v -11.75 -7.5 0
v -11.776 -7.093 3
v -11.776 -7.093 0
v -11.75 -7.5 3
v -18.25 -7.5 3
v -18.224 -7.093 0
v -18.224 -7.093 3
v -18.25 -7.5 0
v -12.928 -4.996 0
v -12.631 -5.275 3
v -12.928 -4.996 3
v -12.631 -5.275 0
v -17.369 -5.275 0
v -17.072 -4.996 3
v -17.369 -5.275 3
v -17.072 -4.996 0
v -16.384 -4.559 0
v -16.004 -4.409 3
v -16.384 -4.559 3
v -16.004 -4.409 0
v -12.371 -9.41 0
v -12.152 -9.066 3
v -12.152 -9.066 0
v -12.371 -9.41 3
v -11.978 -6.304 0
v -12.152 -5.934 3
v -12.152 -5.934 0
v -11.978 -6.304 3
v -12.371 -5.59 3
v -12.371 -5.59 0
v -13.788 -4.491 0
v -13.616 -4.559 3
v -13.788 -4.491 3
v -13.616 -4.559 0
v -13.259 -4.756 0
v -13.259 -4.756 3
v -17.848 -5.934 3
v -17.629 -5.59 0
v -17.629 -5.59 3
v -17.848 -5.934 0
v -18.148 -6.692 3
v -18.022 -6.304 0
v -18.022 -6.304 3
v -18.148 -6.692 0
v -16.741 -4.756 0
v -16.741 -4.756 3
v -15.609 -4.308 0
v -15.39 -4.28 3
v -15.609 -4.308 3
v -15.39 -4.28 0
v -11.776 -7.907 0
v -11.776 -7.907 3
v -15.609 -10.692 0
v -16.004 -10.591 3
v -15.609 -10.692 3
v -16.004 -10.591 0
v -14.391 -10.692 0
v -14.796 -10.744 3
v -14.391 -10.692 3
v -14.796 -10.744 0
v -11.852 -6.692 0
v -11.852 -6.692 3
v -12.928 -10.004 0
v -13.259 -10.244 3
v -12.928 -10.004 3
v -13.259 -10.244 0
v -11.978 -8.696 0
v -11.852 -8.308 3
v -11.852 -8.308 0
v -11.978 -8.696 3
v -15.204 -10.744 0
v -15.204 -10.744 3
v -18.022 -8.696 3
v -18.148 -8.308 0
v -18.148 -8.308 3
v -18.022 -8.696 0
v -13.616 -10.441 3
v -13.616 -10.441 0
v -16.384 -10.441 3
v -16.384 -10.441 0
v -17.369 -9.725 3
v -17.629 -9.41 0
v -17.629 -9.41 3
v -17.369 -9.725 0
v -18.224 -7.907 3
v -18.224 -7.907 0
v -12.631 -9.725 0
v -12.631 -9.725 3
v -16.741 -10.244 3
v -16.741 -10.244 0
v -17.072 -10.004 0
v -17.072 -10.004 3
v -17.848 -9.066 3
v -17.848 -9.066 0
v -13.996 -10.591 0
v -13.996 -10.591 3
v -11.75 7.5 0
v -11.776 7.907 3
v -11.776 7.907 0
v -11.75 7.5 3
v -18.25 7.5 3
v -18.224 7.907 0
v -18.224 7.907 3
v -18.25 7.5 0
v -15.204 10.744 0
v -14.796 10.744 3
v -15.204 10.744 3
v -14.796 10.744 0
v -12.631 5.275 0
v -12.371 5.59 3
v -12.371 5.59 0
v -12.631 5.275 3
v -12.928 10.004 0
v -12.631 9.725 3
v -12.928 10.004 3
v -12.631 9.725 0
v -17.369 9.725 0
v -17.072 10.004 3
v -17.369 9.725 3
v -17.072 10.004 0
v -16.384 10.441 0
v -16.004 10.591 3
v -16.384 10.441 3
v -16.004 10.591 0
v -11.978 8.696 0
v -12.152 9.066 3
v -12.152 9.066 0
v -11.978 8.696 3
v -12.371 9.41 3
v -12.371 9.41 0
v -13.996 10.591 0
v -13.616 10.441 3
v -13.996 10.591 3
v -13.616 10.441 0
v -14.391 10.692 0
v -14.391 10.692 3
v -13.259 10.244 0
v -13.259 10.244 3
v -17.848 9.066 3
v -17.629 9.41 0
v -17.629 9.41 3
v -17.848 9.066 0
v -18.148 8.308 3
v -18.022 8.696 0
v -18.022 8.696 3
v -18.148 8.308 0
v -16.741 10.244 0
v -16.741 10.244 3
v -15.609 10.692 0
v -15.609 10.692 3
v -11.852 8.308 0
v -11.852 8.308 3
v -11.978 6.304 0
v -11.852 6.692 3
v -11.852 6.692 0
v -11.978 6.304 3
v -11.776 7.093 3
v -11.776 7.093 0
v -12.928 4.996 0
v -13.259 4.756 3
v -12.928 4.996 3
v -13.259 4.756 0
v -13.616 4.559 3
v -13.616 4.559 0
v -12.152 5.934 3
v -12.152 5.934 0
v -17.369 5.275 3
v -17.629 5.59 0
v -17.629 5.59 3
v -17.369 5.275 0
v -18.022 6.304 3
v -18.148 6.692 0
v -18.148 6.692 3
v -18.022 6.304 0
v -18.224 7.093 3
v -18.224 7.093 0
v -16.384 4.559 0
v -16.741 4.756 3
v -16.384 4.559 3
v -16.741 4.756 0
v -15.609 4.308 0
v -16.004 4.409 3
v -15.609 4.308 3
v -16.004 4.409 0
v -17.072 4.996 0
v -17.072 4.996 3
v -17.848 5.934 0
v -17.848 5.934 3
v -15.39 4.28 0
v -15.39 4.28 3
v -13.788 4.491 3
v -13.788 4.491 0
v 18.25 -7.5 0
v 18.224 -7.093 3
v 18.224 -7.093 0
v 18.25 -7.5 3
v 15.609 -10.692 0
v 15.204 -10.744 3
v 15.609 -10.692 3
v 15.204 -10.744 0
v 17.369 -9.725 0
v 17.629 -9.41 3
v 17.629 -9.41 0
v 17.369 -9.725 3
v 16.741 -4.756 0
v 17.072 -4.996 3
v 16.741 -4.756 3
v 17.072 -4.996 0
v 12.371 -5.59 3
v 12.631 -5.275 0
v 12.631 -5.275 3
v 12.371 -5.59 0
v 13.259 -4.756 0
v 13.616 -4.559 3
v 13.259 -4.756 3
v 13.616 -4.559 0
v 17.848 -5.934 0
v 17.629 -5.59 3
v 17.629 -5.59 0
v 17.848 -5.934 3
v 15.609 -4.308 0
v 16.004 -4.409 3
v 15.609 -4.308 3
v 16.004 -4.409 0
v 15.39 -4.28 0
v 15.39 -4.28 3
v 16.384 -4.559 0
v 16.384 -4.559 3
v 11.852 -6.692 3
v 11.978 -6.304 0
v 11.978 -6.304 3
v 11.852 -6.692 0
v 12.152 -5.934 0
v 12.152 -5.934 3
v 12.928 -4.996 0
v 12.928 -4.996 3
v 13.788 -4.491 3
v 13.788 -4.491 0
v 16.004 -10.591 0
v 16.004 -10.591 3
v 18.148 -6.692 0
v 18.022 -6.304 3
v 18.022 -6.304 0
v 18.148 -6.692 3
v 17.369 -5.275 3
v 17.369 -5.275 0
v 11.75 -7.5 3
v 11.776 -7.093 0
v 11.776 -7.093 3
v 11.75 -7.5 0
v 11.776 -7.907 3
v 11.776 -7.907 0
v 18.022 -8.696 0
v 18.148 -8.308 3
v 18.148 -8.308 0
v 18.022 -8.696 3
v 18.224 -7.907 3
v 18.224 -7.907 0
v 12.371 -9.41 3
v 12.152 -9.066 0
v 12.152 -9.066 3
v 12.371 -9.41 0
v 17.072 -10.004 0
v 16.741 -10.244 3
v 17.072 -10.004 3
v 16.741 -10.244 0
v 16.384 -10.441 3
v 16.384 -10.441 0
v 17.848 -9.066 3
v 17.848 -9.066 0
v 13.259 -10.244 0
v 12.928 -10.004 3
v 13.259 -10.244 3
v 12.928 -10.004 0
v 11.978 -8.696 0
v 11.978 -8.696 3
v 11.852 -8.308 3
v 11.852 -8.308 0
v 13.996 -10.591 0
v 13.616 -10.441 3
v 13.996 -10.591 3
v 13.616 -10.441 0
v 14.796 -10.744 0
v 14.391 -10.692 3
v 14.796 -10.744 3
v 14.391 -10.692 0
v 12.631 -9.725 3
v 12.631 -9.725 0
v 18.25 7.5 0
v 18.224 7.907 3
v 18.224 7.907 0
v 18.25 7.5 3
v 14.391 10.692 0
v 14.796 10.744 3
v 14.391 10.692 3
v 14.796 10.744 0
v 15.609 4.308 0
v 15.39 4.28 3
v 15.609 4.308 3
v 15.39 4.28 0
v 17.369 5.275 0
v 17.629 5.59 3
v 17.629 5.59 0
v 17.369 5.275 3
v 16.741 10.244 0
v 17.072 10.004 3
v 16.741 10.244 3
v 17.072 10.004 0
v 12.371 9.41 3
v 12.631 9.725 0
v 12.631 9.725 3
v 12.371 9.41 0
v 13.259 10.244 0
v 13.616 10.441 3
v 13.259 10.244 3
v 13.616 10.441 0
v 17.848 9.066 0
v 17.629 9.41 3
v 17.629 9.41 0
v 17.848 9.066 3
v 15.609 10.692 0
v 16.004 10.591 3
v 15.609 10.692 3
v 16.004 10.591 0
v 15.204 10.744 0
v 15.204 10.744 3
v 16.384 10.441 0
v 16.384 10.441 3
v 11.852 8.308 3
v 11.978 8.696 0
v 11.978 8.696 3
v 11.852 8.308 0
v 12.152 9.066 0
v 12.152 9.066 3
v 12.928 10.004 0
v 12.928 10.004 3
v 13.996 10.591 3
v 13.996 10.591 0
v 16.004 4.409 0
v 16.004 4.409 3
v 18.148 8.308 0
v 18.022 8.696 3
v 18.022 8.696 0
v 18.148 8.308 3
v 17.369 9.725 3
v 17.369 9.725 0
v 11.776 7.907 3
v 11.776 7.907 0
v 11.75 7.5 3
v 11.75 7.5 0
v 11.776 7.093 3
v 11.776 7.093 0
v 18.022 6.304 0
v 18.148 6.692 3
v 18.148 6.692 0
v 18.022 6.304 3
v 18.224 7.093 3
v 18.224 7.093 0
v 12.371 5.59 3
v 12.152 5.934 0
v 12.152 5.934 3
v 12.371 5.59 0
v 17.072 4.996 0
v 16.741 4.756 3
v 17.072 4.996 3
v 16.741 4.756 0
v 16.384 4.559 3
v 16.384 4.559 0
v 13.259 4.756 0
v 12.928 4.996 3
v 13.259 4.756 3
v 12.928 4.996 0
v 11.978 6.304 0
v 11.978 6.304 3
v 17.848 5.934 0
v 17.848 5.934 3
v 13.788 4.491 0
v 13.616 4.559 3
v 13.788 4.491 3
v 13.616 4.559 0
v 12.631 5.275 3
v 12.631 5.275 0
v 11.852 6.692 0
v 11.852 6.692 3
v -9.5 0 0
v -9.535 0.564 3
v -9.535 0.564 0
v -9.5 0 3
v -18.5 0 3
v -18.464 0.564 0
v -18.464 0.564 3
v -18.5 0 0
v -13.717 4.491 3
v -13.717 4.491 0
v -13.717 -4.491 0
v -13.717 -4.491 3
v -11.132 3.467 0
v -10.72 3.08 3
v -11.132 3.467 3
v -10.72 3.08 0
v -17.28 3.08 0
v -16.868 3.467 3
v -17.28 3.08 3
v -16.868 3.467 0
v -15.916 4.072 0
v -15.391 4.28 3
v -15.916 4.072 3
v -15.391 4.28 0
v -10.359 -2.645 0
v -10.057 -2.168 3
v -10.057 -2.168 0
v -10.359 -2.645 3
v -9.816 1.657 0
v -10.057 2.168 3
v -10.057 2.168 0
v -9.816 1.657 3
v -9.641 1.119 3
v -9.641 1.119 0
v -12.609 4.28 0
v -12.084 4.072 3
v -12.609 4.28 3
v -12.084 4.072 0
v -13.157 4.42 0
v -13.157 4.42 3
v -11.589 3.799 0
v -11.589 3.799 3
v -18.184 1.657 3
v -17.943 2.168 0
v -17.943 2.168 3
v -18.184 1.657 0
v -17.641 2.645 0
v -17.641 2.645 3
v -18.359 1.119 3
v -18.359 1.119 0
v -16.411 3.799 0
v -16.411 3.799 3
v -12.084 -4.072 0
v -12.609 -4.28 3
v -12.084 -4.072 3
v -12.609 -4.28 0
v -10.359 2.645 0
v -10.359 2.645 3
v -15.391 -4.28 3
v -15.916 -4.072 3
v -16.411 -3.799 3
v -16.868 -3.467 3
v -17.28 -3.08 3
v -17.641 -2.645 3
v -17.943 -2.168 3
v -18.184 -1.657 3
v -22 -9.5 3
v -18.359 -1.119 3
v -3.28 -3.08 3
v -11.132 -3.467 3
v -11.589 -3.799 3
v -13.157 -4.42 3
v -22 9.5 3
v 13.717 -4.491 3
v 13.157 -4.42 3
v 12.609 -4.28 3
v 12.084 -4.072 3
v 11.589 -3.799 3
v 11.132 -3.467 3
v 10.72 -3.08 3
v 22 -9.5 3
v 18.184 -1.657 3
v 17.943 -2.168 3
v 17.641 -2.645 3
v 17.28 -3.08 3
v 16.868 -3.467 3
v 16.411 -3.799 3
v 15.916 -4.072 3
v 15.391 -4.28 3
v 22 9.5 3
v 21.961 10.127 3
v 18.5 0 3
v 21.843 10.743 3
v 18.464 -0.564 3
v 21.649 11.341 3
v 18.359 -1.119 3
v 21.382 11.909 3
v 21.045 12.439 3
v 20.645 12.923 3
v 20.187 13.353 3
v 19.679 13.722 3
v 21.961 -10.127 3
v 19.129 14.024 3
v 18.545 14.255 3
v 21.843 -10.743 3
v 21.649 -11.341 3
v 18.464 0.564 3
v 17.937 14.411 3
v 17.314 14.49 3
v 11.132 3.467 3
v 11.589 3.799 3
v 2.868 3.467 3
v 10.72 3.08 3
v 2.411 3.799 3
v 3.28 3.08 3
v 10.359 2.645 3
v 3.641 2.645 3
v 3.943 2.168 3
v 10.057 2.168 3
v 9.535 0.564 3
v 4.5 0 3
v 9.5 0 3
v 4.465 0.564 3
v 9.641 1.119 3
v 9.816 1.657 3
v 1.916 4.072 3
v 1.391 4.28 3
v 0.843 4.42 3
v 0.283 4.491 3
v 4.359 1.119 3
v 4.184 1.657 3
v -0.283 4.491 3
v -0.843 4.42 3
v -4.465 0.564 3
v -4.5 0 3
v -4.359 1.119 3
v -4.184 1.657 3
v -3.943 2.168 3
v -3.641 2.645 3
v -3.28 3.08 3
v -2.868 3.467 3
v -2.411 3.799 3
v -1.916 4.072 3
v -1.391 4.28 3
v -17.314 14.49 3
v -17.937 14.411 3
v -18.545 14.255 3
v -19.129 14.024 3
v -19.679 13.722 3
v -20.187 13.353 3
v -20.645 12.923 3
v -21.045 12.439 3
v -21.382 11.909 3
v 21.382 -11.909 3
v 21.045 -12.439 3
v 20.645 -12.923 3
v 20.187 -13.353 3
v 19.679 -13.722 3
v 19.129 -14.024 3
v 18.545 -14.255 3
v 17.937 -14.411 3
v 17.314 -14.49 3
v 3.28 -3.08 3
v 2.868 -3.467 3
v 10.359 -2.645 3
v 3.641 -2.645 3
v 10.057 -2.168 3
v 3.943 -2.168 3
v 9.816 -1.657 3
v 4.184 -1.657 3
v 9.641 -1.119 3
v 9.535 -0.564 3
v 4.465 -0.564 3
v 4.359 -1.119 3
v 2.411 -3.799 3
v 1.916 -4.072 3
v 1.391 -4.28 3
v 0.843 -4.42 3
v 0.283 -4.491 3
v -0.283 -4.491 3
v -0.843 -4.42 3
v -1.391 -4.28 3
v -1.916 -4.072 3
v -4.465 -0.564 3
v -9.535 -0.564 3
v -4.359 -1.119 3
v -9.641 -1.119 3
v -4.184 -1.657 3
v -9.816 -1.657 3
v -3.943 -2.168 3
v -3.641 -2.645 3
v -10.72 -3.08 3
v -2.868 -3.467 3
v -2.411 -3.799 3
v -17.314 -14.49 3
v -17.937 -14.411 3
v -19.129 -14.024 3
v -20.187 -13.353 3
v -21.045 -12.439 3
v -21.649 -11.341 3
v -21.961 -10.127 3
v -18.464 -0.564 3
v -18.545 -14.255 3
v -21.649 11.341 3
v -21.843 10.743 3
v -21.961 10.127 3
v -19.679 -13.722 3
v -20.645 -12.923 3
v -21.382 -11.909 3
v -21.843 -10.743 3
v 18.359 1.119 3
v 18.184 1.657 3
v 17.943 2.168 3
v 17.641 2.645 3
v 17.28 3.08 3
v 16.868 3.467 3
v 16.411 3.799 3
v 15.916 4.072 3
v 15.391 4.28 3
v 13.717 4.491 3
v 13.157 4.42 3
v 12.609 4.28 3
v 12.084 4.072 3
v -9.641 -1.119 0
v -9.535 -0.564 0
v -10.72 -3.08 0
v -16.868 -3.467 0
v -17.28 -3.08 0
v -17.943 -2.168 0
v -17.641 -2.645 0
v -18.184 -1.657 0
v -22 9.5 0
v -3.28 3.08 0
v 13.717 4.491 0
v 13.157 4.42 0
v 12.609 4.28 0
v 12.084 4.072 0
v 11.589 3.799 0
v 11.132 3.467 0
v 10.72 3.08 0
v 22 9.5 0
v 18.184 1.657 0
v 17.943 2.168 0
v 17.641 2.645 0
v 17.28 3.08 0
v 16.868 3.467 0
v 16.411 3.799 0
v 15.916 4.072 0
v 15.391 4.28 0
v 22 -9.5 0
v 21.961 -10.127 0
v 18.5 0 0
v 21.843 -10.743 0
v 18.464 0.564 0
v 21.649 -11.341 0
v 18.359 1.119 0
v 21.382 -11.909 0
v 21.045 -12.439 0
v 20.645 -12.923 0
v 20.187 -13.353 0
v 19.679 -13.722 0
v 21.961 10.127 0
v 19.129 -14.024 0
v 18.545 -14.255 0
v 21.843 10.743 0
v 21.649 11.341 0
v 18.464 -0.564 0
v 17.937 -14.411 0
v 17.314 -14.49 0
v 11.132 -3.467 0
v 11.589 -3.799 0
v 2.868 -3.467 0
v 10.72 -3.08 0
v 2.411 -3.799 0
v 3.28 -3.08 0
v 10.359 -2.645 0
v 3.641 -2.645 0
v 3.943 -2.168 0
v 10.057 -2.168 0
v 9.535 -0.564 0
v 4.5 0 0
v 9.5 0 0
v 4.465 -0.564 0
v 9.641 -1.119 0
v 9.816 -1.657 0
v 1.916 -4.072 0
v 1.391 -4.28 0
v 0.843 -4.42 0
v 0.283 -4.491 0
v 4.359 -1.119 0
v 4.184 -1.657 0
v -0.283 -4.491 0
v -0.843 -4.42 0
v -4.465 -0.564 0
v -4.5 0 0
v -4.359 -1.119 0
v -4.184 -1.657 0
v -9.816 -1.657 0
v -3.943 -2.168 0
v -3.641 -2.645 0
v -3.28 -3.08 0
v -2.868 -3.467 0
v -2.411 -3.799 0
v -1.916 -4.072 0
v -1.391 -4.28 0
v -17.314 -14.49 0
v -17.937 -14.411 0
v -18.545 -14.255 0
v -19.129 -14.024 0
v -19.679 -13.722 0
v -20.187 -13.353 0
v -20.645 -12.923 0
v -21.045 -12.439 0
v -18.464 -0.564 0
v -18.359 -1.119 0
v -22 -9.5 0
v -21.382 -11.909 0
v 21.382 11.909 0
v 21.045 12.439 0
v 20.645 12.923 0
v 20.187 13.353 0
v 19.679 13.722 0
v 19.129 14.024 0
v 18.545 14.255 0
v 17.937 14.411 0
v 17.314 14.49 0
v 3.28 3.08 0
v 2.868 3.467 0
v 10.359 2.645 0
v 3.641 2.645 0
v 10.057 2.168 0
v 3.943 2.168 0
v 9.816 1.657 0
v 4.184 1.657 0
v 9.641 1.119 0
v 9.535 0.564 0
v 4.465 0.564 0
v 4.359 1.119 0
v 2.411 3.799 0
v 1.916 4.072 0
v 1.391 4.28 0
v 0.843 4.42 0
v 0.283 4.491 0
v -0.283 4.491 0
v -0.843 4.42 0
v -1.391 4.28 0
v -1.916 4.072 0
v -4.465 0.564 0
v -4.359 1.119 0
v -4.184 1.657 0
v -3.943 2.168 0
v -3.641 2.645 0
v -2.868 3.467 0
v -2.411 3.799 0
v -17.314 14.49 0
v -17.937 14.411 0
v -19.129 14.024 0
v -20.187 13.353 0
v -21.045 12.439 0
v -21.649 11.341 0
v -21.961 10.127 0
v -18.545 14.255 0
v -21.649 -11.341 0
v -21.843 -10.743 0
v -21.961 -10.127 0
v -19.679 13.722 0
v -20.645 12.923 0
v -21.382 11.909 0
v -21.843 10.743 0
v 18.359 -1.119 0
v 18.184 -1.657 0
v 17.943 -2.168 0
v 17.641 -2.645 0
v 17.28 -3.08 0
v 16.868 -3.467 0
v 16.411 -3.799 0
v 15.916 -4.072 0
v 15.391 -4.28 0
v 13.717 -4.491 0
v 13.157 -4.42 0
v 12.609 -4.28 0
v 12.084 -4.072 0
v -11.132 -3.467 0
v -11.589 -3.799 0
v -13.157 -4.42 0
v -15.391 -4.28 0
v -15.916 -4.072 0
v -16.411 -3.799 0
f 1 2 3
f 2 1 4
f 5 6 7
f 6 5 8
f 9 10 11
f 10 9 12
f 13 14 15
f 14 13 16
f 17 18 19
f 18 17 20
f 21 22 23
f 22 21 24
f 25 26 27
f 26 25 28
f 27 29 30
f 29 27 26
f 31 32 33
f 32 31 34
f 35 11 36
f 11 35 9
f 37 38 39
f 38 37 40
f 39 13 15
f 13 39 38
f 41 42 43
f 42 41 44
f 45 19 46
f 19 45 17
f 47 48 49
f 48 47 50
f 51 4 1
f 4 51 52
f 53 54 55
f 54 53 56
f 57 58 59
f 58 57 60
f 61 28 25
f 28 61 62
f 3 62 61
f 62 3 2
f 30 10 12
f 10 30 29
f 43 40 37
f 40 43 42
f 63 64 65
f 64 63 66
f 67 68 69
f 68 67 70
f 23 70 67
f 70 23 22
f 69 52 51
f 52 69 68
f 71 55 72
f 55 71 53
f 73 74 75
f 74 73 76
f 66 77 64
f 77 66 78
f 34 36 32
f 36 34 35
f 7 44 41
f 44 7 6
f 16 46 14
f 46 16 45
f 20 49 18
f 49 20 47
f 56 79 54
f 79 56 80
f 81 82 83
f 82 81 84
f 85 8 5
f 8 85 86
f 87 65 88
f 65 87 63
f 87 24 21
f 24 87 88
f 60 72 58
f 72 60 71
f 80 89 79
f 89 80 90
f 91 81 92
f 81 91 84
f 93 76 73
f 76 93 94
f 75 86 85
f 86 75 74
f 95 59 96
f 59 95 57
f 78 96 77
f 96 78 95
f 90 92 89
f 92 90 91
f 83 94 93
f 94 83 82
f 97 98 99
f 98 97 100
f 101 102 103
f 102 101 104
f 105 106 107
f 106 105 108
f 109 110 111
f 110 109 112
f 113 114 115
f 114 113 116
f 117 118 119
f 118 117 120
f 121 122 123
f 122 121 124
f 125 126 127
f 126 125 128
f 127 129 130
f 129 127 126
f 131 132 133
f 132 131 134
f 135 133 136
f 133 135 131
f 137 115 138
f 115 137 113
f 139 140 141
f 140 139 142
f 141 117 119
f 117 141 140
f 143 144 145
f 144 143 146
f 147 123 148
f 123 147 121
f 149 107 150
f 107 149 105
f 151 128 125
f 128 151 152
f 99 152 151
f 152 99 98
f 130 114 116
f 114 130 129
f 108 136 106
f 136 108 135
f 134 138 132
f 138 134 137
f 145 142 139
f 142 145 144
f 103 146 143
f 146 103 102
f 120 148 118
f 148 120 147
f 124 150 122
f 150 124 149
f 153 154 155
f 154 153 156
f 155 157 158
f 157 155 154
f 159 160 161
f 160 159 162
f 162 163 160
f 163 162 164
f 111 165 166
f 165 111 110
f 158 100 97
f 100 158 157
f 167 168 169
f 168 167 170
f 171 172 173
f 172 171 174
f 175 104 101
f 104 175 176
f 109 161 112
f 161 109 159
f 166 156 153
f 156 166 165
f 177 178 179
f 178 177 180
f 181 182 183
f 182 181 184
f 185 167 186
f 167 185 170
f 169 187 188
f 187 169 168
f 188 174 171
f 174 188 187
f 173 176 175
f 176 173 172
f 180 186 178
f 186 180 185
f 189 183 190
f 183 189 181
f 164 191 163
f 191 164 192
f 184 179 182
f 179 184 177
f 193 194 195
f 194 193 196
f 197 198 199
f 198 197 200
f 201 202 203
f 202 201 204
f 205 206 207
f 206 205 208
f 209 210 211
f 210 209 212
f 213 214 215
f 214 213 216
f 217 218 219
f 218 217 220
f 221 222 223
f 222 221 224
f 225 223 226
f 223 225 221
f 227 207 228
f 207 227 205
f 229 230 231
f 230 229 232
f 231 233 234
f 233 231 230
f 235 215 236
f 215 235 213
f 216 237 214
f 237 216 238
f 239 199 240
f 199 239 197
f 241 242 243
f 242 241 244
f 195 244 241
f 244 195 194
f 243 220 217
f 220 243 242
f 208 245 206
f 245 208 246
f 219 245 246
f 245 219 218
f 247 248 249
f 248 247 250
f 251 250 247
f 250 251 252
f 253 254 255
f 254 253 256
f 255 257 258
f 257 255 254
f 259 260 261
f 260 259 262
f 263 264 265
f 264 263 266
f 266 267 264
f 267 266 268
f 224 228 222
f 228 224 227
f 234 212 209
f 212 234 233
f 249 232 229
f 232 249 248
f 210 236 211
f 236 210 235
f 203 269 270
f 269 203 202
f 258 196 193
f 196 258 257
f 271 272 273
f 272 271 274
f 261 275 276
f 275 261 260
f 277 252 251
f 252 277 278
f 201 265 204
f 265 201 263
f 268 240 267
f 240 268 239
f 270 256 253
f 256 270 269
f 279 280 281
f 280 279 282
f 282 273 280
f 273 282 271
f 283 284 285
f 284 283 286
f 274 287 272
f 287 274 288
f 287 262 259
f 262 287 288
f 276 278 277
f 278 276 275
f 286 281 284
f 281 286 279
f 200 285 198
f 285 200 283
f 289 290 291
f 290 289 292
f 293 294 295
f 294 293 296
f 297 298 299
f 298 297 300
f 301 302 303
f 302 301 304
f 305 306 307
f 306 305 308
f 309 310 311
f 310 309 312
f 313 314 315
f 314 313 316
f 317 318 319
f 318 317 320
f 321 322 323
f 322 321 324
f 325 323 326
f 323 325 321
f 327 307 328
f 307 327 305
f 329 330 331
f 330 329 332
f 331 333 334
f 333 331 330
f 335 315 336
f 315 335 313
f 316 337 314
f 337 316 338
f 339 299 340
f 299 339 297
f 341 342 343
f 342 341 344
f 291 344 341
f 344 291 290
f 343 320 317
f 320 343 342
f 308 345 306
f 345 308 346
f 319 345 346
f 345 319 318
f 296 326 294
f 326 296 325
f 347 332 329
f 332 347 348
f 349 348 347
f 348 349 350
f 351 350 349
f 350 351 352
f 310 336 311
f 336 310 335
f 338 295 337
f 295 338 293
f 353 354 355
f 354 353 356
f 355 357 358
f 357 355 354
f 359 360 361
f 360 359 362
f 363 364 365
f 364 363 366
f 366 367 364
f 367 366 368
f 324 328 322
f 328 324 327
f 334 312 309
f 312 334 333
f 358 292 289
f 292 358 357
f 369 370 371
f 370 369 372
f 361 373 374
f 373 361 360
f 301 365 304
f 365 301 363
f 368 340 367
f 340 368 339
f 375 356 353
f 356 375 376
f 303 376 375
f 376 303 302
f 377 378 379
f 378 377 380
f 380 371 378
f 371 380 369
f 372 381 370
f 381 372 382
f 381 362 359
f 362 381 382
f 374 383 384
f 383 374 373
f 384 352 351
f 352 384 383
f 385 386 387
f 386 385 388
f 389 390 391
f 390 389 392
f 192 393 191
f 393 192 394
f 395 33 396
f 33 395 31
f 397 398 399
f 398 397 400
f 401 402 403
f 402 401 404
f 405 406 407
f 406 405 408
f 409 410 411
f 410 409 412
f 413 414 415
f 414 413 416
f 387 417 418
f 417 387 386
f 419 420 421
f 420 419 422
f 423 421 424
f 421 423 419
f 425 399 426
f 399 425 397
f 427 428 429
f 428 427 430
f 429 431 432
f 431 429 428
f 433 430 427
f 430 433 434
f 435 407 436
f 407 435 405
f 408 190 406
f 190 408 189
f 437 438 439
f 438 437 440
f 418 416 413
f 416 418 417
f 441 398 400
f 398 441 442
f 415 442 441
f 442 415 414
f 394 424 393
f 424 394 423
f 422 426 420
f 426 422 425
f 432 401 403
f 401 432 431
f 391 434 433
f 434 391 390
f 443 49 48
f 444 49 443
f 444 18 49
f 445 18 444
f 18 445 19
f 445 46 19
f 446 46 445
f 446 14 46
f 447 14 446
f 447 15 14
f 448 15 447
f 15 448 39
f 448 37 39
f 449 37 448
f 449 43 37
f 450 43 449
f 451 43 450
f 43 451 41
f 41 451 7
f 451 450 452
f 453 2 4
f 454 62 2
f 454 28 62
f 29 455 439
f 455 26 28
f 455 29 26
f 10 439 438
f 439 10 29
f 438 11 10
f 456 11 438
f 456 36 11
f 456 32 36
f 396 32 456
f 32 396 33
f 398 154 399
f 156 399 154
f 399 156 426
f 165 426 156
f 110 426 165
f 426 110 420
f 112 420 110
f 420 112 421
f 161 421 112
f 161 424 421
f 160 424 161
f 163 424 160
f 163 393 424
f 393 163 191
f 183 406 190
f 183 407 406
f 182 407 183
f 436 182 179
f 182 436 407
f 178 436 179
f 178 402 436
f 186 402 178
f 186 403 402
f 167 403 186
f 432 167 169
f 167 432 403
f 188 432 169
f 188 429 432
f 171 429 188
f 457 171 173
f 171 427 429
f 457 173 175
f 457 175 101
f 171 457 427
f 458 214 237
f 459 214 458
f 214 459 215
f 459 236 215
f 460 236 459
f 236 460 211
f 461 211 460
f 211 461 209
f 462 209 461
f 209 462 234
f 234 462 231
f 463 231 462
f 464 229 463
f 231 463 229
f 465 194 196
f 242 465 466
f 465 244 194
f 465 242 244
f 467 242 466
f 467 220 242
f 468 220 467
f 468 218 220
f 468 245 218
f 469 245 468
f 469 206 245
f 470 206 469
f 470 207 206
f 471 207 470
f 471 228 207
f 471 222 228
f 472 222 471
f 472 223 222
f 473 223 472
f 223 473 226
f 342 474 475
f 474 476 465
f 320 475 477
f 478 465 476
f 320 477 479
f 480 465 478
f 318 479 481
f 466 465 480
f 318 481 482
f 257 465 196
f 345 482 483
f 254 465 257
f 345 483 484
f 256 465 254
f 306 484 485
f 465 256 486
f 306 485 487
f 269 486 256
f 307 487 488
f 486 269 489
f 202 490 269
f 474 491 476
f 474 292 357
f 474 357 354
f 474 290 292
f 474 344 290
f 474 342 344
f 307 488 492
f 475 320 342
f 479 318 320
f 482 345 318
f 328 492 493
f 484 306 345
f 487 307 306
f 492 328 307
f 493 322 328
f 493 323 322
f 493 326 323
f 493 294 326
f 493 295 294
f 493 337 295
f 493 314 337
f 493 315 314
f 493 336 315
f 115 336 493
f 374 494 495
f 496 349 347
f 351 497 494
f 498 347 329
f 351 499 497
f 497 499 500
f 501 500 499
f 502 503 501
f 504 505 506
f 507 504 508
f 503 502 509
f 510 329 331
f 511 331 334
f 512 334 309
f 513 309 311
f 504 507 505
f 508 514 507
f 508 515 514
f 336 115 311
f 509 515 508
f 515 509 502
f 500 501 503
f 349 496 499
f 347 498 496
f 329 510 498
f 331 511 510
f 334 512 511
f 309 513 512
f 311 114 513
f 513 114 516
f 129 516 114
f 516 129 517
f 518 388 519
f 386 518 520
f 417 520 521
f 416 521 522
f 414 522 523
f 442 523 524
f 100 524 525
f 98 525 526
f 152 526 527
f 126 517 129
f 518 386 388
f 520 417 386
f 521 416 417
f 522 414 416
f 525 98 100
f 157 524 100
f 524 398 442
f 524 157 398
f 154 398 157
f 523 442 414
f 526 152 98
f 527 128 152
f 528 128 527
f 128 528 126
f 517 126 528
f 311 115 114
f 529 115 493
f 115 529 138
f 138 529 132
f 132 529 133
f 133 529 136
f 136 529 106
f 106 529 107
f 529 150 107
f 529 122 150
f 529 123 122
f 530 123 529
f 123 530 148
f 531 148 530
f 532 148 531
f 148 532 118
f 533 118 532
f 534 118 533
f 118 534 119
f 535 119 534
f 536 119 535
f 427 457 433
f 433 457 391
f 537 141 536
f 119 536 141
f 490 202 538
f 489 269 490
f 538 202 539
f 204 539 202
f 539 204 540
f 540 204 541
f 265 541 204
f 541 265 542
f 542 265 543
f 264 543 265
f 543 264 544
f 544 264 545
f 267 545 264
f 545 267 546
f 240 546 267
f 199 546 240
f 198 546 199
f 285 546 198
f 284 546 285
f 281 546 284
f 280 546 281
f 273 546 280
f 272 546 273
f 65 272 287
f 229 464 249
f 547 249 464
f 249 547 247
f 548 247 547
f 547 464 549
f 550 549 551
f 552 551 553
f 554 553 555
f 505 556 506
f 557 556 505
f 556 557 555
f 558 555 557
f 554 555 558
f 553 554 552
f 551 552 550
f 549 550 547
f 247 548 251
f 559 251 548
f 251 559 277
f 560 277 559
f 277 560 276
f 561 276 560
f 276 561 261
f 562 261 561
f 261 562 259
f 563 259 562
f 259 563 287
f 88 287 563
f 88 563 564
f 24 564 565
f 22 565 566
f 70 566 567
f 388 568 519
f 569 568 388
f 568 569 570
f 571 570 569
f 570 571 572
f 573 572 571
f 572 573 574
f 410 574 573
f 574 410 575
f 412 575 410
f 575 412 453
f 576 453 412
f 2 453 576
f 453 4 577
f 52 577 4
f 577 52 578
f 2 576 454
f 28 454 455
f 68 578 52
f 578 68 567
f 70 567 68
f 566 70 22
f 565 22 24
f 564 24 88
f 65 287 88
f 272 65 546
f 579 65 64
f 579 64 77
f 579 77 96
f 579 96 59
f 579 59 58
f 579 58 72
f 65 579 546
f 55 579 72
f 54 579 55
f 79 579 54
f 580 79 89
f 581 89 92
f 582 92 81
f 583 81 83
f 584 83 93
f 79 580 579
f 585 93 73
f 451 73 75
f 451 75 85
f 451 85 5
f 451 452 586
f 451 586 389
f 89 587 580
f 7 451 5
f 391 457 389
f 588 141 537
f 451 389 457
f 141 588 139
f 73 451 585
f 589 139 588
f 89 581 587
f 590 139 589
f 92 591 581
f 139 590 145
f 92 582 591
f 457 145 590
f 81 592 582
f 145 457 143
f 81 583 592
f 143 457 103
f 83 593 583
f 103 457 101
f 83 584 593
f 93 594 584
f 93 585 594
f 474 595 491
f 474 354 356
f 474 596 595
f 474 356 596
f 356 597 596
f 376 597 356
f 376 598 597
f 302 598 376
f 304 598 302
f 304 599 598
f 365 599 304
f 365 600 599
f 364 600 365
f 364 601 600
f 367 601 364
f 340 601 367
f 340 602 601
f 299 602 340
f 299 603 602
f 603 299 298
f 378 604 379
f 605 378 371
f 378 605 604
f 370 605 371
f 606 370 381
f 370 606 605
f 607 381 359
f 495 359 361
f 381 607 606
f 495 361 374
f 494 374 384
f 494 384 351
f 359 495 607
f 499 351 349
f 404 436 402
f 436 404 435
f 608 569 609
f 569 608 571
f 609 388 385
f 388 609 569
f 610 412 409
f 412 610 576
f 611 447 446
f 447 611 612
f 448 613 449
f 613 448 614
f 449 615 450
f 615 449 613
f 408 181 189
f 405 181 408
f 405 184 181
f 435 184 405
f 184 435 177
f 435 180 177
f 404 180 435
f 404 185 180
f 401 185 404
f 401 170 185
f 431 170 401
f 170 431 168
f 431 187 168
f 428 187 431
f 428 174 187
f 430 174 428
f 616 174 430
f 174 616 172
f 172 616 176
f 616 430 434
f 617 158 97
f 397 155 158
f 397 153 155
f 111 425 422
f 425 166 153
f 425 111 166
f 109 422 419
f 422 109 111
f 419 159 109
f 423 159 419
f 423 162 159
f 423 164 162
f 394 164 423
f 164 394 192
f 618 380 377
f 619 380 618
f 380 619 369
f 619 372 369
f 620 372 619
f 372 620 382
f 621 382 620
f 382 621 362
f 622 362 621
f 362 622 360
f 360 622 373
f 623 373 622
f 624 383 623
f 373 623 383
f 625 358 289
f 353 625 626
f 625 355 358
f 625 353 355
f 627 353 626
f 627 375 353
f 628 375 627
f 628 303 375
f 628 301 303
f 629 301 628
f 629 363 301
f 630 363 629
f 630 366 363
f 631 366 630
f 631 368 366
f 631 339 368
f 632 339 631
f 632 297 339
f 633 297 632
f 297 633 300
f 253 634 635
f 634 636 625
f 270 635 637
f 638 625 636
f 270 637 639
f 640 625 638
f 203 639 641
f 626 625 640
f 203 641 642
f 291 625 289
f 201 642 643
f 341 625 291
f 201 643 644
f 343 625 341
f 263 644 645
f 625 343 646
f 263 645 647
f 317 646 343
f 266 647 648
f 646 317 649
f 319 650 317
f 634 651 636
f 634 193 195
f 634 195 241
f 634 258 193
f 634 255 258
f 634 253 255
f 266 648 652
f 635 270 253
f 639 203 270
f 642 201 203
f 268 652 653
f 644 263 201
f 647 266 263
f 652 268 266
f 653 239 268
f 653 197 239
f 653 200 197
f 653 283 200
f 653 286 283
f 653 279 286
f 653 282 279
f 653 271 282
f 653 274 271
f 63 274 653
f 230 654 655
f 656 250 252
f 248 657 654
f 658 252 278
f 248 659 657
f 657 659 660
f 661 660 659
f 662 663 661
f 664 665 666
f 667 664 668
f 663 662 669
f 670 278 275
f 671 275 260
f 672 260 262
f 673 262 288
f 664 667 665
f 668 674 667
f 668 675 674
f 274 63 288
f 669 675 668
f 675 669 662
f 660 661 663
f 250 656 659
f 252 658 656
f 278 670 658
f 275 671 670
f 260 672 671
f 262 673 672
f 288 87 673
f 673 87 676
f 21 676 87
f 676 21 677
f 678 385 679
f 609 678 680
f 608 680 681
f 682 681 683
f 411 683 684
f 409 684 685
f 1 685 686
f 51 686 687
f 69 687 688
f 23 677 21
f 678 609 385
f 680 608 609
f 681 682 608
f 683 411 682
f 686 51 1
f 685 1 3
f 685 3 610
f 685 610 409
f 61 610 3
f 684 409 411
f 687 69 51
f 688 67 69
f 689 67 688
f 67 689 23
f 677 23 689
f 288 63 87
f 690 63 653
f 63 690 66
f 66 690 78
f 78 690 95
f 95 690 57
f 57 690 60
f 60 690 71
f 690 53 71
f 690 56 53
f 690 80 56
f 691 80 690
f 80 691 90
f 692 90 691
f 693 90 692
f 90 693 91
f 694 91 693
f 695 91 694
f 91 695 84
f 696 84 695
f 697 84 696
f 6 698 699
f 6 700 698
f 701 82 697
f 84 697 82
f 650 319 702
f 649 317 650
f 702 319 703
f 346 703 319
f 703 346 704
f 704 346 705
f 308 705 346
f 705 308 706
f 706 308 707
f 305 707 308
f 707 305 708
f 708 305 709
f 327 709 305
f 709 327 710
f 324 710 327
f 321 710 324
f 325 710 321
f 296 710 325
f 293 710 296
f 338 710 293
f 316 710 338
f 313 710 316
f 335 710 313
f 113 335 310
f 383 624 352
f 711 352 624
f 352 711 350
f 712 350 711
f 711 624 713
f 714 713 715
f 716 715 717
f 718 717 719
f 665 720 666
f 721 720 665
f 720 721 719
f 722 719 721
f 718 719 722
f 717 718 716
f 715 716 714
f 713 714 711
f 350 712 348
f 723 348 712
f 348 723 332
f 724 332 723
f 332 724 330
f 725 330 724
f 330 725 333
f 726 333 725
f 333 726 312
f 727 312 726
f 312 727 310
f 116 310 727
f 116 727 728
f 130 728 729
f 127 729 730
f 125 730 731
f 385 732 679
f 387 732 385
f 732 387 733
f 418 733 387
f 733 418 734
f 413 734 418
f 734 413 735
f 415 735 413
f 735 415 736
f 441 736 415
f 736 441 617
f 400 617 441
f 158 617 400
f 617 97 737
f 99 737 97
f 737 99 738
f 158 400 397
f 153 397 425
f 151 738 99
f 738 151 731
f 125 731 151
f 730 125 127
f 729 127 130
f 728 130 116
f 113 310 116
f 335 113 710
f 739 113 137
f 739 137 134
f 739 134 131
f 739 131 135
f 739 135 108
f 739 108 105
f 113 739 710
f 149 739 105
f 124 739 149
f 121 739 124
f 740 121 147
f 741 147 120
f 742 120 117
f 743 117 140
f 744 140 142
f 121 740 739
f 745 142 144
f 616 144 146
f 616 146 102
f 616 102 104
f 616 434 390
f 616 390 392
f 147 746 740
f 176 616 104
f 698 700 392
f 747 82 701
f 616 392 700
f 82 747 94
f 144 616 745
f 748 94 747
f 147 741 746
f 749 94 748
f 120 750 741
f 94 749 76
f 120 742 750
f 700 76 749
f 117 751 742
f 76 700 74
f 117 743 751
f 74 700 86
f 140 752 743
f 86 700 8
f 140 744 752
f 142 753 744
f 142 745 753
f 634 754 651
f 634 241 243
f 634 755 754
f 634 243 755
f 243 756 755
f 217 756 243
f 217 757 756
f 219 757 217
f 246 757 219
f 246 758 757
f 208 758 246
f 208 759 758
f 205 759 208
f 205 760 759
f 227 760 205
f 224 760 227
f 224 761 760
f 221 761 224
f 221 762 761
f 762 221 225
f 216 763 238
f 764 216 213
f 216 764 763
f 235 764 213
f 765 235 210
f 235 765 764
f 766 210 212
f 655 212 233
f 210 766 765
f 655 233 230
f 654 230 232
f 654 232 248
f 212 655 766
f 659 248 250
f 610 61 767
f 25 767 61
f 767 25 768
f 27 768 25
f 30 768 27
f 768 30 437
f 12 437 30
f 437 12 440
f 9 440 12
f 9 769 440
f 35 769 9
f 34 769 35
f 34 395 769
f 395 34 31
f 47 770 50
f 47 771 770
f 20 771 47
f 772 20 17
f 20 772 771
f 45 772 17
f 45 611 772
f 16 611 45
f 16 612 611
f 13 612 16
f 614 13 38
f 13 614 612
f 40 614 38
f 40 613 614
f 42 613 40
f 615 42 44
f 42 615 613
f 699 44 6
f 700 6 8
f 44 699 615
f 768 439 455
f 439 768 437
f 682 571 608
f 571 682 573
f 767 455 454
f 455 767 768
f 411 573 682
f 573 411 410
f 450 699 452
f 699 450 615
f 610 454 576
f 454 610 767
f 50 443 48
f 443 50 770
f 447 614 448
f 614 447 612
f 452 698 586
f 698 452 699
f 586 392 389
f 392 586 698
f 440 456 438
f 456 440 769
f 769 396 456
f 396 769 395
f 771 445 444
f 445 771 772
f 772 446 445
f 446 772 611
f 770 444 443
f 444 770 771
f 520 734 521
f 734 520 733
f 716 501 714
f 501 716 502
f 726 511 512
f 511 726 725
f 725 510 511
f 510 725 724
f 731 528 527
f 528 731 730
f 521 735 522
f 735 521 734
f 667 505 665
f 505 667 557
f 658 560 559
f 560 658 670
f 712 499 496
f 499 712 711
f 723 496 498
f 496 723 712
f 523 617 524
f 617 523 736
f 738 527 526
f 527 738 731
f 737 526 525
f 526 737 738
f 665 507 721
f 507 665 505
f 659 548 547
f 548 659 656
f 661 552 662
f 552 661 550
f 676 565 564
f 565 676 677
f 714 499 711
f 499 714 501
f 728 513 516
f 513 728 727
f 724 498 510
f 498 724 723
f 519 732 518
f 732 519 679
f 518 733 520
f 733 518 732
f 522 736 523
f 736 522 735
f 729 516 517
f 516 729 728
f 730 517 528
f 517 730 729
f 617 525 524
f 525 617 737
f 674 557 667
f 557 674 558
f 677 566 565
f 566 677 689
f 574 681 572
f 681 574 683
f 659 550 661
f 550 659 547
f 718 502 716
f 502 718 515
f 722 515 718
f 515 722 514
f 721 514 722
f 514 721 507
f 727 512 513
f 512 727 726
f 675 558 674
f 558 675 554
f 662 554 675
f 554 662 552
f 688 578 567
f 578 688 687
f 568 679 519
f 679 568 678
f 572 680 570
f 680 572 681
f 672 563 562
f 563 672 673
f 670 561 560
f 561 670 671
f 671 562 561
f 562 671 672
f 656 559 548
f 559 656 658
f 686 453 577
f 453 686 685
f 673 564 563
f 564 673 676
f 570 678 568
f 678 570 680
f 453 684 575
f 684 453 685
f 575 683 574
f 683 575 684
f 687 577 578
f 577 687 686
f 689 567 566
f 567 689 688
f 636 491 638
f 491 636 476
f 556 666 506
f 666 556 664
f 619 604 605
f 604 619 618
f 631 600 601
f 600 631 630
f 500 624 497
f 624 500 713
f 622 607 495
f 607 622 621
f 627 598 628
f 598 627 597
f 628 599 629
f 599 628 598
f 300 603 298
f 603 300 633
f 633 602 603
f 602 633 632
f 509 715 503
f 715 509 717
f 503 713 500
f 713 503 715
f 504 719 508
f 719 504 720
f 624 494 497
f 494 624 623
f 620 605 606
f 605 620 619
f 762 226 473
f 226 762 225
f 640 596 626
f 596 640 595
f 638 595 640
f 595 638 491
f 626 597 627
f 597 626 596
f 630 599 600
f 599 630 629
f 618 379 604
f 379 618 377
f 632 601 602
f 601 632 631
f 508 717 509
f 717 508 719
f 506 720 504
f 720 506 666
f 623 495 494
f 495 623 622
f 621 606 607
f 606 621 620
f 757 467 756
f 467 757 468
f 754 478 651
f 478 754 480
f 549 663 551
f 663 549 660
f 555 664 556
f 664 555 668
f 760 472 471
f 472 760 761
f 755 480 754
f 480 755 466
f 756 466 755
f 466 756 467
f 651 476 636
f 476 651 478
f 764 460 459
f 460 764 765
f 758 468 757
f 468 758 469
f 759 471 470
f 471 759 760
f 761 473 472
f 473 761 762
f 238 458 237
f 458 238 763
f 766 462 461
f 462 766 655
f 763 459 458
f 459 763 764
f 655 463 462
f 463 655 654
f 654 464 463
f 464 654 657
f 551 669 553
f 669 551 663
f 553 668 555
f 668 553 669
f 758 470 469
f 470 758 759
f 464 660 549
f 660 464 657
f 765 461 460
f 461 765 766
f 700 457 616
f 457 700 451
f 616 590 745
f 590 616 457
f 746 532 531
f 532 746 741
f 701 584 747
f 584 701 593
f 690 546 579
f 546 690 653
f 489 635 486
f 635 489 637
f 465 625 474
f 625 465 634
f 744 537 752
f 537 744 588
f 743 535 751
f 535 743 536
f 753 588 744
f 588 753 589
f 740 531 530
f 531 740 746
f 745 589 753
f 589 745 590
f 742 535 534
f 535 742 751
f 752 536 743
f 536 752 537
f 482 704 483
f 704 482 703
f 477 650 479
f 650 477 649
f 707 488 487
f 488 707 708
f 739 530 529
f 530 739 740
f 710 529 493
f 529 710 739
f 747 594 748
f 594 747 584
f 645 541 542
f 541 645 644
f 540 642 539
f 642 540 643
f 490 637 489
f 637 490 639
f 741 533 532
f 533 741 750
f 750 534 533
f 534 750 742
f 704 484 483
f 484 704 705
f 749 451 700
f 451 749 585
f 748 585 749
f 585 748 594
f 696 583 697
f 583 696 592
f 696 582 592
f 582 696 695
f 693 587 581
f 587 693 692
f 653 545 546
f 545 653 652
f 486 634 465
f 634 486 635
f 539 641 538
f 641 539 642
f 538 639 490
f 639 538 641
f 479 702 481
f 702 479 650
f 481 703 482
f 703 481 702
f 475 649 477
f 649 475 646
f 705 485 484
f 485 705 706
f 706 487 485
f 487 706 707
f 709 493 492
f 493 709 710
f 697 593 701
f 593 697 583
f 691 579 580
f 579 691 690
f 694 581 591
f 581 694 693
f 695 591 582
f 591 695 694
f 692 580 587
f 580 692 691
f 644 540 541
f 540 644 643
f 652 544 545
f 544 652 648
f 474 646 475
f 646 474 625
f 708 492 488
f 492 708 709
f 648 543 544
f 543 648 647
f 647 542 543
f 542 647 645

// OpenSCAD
$fn = 50;


difference() {
	union() {
		hull() {
			translate(v = [-17.0000000000, 9.5000000000, 0]) {
				cylinder(h = 3, r = 5);
			}
			translate(v = [17.0000000000, 9.5000000000, 0]) {
				cylinder(h = 3, r = 5);
			}
			translate(v = [-17.0000000000, -9.5000000000, 0]) {
				cylinder(h = 3, r = 5);
			}
			translate(v = [17.0000000000, -9.5000000000, 0]) {
				cylinder(h = 3, r = 5);
			}
		}
	}
	union() {
		#translate(v = [-15.0000000000, -7.5000000000, -100.0000000000]) {
			cylinder(h = 200, r = 3.2500000000);
		}
		#translate(v = [-15.0000000000, 7.5000000000, -100.0000000000]) {
			cylinder(h = 200, r = 3.2500000000);
		}
		#translate(v = [15.0000000000, -7.5000000000, -100.0000000000]) {
			cylinder(h = 200, r = 3.2500000000);
		}
		#translate(v = [15.0000000000, 7.5000000000, -100.0000000000]) {
			cylinder(h = 200, r = 3.2500000000);
		}
		#translate(v = [-14.0000000000, 0, 0]) {
			cylinder(h = 3, r = 4.5000000000);
		}
		#cylinder(h = 3, r = 4.5000000000);
		#translate(v = [14.0000000000, 0, 0]) {
			cylinder(h = 3, r = 4.5000000000);
		}
	}
}
